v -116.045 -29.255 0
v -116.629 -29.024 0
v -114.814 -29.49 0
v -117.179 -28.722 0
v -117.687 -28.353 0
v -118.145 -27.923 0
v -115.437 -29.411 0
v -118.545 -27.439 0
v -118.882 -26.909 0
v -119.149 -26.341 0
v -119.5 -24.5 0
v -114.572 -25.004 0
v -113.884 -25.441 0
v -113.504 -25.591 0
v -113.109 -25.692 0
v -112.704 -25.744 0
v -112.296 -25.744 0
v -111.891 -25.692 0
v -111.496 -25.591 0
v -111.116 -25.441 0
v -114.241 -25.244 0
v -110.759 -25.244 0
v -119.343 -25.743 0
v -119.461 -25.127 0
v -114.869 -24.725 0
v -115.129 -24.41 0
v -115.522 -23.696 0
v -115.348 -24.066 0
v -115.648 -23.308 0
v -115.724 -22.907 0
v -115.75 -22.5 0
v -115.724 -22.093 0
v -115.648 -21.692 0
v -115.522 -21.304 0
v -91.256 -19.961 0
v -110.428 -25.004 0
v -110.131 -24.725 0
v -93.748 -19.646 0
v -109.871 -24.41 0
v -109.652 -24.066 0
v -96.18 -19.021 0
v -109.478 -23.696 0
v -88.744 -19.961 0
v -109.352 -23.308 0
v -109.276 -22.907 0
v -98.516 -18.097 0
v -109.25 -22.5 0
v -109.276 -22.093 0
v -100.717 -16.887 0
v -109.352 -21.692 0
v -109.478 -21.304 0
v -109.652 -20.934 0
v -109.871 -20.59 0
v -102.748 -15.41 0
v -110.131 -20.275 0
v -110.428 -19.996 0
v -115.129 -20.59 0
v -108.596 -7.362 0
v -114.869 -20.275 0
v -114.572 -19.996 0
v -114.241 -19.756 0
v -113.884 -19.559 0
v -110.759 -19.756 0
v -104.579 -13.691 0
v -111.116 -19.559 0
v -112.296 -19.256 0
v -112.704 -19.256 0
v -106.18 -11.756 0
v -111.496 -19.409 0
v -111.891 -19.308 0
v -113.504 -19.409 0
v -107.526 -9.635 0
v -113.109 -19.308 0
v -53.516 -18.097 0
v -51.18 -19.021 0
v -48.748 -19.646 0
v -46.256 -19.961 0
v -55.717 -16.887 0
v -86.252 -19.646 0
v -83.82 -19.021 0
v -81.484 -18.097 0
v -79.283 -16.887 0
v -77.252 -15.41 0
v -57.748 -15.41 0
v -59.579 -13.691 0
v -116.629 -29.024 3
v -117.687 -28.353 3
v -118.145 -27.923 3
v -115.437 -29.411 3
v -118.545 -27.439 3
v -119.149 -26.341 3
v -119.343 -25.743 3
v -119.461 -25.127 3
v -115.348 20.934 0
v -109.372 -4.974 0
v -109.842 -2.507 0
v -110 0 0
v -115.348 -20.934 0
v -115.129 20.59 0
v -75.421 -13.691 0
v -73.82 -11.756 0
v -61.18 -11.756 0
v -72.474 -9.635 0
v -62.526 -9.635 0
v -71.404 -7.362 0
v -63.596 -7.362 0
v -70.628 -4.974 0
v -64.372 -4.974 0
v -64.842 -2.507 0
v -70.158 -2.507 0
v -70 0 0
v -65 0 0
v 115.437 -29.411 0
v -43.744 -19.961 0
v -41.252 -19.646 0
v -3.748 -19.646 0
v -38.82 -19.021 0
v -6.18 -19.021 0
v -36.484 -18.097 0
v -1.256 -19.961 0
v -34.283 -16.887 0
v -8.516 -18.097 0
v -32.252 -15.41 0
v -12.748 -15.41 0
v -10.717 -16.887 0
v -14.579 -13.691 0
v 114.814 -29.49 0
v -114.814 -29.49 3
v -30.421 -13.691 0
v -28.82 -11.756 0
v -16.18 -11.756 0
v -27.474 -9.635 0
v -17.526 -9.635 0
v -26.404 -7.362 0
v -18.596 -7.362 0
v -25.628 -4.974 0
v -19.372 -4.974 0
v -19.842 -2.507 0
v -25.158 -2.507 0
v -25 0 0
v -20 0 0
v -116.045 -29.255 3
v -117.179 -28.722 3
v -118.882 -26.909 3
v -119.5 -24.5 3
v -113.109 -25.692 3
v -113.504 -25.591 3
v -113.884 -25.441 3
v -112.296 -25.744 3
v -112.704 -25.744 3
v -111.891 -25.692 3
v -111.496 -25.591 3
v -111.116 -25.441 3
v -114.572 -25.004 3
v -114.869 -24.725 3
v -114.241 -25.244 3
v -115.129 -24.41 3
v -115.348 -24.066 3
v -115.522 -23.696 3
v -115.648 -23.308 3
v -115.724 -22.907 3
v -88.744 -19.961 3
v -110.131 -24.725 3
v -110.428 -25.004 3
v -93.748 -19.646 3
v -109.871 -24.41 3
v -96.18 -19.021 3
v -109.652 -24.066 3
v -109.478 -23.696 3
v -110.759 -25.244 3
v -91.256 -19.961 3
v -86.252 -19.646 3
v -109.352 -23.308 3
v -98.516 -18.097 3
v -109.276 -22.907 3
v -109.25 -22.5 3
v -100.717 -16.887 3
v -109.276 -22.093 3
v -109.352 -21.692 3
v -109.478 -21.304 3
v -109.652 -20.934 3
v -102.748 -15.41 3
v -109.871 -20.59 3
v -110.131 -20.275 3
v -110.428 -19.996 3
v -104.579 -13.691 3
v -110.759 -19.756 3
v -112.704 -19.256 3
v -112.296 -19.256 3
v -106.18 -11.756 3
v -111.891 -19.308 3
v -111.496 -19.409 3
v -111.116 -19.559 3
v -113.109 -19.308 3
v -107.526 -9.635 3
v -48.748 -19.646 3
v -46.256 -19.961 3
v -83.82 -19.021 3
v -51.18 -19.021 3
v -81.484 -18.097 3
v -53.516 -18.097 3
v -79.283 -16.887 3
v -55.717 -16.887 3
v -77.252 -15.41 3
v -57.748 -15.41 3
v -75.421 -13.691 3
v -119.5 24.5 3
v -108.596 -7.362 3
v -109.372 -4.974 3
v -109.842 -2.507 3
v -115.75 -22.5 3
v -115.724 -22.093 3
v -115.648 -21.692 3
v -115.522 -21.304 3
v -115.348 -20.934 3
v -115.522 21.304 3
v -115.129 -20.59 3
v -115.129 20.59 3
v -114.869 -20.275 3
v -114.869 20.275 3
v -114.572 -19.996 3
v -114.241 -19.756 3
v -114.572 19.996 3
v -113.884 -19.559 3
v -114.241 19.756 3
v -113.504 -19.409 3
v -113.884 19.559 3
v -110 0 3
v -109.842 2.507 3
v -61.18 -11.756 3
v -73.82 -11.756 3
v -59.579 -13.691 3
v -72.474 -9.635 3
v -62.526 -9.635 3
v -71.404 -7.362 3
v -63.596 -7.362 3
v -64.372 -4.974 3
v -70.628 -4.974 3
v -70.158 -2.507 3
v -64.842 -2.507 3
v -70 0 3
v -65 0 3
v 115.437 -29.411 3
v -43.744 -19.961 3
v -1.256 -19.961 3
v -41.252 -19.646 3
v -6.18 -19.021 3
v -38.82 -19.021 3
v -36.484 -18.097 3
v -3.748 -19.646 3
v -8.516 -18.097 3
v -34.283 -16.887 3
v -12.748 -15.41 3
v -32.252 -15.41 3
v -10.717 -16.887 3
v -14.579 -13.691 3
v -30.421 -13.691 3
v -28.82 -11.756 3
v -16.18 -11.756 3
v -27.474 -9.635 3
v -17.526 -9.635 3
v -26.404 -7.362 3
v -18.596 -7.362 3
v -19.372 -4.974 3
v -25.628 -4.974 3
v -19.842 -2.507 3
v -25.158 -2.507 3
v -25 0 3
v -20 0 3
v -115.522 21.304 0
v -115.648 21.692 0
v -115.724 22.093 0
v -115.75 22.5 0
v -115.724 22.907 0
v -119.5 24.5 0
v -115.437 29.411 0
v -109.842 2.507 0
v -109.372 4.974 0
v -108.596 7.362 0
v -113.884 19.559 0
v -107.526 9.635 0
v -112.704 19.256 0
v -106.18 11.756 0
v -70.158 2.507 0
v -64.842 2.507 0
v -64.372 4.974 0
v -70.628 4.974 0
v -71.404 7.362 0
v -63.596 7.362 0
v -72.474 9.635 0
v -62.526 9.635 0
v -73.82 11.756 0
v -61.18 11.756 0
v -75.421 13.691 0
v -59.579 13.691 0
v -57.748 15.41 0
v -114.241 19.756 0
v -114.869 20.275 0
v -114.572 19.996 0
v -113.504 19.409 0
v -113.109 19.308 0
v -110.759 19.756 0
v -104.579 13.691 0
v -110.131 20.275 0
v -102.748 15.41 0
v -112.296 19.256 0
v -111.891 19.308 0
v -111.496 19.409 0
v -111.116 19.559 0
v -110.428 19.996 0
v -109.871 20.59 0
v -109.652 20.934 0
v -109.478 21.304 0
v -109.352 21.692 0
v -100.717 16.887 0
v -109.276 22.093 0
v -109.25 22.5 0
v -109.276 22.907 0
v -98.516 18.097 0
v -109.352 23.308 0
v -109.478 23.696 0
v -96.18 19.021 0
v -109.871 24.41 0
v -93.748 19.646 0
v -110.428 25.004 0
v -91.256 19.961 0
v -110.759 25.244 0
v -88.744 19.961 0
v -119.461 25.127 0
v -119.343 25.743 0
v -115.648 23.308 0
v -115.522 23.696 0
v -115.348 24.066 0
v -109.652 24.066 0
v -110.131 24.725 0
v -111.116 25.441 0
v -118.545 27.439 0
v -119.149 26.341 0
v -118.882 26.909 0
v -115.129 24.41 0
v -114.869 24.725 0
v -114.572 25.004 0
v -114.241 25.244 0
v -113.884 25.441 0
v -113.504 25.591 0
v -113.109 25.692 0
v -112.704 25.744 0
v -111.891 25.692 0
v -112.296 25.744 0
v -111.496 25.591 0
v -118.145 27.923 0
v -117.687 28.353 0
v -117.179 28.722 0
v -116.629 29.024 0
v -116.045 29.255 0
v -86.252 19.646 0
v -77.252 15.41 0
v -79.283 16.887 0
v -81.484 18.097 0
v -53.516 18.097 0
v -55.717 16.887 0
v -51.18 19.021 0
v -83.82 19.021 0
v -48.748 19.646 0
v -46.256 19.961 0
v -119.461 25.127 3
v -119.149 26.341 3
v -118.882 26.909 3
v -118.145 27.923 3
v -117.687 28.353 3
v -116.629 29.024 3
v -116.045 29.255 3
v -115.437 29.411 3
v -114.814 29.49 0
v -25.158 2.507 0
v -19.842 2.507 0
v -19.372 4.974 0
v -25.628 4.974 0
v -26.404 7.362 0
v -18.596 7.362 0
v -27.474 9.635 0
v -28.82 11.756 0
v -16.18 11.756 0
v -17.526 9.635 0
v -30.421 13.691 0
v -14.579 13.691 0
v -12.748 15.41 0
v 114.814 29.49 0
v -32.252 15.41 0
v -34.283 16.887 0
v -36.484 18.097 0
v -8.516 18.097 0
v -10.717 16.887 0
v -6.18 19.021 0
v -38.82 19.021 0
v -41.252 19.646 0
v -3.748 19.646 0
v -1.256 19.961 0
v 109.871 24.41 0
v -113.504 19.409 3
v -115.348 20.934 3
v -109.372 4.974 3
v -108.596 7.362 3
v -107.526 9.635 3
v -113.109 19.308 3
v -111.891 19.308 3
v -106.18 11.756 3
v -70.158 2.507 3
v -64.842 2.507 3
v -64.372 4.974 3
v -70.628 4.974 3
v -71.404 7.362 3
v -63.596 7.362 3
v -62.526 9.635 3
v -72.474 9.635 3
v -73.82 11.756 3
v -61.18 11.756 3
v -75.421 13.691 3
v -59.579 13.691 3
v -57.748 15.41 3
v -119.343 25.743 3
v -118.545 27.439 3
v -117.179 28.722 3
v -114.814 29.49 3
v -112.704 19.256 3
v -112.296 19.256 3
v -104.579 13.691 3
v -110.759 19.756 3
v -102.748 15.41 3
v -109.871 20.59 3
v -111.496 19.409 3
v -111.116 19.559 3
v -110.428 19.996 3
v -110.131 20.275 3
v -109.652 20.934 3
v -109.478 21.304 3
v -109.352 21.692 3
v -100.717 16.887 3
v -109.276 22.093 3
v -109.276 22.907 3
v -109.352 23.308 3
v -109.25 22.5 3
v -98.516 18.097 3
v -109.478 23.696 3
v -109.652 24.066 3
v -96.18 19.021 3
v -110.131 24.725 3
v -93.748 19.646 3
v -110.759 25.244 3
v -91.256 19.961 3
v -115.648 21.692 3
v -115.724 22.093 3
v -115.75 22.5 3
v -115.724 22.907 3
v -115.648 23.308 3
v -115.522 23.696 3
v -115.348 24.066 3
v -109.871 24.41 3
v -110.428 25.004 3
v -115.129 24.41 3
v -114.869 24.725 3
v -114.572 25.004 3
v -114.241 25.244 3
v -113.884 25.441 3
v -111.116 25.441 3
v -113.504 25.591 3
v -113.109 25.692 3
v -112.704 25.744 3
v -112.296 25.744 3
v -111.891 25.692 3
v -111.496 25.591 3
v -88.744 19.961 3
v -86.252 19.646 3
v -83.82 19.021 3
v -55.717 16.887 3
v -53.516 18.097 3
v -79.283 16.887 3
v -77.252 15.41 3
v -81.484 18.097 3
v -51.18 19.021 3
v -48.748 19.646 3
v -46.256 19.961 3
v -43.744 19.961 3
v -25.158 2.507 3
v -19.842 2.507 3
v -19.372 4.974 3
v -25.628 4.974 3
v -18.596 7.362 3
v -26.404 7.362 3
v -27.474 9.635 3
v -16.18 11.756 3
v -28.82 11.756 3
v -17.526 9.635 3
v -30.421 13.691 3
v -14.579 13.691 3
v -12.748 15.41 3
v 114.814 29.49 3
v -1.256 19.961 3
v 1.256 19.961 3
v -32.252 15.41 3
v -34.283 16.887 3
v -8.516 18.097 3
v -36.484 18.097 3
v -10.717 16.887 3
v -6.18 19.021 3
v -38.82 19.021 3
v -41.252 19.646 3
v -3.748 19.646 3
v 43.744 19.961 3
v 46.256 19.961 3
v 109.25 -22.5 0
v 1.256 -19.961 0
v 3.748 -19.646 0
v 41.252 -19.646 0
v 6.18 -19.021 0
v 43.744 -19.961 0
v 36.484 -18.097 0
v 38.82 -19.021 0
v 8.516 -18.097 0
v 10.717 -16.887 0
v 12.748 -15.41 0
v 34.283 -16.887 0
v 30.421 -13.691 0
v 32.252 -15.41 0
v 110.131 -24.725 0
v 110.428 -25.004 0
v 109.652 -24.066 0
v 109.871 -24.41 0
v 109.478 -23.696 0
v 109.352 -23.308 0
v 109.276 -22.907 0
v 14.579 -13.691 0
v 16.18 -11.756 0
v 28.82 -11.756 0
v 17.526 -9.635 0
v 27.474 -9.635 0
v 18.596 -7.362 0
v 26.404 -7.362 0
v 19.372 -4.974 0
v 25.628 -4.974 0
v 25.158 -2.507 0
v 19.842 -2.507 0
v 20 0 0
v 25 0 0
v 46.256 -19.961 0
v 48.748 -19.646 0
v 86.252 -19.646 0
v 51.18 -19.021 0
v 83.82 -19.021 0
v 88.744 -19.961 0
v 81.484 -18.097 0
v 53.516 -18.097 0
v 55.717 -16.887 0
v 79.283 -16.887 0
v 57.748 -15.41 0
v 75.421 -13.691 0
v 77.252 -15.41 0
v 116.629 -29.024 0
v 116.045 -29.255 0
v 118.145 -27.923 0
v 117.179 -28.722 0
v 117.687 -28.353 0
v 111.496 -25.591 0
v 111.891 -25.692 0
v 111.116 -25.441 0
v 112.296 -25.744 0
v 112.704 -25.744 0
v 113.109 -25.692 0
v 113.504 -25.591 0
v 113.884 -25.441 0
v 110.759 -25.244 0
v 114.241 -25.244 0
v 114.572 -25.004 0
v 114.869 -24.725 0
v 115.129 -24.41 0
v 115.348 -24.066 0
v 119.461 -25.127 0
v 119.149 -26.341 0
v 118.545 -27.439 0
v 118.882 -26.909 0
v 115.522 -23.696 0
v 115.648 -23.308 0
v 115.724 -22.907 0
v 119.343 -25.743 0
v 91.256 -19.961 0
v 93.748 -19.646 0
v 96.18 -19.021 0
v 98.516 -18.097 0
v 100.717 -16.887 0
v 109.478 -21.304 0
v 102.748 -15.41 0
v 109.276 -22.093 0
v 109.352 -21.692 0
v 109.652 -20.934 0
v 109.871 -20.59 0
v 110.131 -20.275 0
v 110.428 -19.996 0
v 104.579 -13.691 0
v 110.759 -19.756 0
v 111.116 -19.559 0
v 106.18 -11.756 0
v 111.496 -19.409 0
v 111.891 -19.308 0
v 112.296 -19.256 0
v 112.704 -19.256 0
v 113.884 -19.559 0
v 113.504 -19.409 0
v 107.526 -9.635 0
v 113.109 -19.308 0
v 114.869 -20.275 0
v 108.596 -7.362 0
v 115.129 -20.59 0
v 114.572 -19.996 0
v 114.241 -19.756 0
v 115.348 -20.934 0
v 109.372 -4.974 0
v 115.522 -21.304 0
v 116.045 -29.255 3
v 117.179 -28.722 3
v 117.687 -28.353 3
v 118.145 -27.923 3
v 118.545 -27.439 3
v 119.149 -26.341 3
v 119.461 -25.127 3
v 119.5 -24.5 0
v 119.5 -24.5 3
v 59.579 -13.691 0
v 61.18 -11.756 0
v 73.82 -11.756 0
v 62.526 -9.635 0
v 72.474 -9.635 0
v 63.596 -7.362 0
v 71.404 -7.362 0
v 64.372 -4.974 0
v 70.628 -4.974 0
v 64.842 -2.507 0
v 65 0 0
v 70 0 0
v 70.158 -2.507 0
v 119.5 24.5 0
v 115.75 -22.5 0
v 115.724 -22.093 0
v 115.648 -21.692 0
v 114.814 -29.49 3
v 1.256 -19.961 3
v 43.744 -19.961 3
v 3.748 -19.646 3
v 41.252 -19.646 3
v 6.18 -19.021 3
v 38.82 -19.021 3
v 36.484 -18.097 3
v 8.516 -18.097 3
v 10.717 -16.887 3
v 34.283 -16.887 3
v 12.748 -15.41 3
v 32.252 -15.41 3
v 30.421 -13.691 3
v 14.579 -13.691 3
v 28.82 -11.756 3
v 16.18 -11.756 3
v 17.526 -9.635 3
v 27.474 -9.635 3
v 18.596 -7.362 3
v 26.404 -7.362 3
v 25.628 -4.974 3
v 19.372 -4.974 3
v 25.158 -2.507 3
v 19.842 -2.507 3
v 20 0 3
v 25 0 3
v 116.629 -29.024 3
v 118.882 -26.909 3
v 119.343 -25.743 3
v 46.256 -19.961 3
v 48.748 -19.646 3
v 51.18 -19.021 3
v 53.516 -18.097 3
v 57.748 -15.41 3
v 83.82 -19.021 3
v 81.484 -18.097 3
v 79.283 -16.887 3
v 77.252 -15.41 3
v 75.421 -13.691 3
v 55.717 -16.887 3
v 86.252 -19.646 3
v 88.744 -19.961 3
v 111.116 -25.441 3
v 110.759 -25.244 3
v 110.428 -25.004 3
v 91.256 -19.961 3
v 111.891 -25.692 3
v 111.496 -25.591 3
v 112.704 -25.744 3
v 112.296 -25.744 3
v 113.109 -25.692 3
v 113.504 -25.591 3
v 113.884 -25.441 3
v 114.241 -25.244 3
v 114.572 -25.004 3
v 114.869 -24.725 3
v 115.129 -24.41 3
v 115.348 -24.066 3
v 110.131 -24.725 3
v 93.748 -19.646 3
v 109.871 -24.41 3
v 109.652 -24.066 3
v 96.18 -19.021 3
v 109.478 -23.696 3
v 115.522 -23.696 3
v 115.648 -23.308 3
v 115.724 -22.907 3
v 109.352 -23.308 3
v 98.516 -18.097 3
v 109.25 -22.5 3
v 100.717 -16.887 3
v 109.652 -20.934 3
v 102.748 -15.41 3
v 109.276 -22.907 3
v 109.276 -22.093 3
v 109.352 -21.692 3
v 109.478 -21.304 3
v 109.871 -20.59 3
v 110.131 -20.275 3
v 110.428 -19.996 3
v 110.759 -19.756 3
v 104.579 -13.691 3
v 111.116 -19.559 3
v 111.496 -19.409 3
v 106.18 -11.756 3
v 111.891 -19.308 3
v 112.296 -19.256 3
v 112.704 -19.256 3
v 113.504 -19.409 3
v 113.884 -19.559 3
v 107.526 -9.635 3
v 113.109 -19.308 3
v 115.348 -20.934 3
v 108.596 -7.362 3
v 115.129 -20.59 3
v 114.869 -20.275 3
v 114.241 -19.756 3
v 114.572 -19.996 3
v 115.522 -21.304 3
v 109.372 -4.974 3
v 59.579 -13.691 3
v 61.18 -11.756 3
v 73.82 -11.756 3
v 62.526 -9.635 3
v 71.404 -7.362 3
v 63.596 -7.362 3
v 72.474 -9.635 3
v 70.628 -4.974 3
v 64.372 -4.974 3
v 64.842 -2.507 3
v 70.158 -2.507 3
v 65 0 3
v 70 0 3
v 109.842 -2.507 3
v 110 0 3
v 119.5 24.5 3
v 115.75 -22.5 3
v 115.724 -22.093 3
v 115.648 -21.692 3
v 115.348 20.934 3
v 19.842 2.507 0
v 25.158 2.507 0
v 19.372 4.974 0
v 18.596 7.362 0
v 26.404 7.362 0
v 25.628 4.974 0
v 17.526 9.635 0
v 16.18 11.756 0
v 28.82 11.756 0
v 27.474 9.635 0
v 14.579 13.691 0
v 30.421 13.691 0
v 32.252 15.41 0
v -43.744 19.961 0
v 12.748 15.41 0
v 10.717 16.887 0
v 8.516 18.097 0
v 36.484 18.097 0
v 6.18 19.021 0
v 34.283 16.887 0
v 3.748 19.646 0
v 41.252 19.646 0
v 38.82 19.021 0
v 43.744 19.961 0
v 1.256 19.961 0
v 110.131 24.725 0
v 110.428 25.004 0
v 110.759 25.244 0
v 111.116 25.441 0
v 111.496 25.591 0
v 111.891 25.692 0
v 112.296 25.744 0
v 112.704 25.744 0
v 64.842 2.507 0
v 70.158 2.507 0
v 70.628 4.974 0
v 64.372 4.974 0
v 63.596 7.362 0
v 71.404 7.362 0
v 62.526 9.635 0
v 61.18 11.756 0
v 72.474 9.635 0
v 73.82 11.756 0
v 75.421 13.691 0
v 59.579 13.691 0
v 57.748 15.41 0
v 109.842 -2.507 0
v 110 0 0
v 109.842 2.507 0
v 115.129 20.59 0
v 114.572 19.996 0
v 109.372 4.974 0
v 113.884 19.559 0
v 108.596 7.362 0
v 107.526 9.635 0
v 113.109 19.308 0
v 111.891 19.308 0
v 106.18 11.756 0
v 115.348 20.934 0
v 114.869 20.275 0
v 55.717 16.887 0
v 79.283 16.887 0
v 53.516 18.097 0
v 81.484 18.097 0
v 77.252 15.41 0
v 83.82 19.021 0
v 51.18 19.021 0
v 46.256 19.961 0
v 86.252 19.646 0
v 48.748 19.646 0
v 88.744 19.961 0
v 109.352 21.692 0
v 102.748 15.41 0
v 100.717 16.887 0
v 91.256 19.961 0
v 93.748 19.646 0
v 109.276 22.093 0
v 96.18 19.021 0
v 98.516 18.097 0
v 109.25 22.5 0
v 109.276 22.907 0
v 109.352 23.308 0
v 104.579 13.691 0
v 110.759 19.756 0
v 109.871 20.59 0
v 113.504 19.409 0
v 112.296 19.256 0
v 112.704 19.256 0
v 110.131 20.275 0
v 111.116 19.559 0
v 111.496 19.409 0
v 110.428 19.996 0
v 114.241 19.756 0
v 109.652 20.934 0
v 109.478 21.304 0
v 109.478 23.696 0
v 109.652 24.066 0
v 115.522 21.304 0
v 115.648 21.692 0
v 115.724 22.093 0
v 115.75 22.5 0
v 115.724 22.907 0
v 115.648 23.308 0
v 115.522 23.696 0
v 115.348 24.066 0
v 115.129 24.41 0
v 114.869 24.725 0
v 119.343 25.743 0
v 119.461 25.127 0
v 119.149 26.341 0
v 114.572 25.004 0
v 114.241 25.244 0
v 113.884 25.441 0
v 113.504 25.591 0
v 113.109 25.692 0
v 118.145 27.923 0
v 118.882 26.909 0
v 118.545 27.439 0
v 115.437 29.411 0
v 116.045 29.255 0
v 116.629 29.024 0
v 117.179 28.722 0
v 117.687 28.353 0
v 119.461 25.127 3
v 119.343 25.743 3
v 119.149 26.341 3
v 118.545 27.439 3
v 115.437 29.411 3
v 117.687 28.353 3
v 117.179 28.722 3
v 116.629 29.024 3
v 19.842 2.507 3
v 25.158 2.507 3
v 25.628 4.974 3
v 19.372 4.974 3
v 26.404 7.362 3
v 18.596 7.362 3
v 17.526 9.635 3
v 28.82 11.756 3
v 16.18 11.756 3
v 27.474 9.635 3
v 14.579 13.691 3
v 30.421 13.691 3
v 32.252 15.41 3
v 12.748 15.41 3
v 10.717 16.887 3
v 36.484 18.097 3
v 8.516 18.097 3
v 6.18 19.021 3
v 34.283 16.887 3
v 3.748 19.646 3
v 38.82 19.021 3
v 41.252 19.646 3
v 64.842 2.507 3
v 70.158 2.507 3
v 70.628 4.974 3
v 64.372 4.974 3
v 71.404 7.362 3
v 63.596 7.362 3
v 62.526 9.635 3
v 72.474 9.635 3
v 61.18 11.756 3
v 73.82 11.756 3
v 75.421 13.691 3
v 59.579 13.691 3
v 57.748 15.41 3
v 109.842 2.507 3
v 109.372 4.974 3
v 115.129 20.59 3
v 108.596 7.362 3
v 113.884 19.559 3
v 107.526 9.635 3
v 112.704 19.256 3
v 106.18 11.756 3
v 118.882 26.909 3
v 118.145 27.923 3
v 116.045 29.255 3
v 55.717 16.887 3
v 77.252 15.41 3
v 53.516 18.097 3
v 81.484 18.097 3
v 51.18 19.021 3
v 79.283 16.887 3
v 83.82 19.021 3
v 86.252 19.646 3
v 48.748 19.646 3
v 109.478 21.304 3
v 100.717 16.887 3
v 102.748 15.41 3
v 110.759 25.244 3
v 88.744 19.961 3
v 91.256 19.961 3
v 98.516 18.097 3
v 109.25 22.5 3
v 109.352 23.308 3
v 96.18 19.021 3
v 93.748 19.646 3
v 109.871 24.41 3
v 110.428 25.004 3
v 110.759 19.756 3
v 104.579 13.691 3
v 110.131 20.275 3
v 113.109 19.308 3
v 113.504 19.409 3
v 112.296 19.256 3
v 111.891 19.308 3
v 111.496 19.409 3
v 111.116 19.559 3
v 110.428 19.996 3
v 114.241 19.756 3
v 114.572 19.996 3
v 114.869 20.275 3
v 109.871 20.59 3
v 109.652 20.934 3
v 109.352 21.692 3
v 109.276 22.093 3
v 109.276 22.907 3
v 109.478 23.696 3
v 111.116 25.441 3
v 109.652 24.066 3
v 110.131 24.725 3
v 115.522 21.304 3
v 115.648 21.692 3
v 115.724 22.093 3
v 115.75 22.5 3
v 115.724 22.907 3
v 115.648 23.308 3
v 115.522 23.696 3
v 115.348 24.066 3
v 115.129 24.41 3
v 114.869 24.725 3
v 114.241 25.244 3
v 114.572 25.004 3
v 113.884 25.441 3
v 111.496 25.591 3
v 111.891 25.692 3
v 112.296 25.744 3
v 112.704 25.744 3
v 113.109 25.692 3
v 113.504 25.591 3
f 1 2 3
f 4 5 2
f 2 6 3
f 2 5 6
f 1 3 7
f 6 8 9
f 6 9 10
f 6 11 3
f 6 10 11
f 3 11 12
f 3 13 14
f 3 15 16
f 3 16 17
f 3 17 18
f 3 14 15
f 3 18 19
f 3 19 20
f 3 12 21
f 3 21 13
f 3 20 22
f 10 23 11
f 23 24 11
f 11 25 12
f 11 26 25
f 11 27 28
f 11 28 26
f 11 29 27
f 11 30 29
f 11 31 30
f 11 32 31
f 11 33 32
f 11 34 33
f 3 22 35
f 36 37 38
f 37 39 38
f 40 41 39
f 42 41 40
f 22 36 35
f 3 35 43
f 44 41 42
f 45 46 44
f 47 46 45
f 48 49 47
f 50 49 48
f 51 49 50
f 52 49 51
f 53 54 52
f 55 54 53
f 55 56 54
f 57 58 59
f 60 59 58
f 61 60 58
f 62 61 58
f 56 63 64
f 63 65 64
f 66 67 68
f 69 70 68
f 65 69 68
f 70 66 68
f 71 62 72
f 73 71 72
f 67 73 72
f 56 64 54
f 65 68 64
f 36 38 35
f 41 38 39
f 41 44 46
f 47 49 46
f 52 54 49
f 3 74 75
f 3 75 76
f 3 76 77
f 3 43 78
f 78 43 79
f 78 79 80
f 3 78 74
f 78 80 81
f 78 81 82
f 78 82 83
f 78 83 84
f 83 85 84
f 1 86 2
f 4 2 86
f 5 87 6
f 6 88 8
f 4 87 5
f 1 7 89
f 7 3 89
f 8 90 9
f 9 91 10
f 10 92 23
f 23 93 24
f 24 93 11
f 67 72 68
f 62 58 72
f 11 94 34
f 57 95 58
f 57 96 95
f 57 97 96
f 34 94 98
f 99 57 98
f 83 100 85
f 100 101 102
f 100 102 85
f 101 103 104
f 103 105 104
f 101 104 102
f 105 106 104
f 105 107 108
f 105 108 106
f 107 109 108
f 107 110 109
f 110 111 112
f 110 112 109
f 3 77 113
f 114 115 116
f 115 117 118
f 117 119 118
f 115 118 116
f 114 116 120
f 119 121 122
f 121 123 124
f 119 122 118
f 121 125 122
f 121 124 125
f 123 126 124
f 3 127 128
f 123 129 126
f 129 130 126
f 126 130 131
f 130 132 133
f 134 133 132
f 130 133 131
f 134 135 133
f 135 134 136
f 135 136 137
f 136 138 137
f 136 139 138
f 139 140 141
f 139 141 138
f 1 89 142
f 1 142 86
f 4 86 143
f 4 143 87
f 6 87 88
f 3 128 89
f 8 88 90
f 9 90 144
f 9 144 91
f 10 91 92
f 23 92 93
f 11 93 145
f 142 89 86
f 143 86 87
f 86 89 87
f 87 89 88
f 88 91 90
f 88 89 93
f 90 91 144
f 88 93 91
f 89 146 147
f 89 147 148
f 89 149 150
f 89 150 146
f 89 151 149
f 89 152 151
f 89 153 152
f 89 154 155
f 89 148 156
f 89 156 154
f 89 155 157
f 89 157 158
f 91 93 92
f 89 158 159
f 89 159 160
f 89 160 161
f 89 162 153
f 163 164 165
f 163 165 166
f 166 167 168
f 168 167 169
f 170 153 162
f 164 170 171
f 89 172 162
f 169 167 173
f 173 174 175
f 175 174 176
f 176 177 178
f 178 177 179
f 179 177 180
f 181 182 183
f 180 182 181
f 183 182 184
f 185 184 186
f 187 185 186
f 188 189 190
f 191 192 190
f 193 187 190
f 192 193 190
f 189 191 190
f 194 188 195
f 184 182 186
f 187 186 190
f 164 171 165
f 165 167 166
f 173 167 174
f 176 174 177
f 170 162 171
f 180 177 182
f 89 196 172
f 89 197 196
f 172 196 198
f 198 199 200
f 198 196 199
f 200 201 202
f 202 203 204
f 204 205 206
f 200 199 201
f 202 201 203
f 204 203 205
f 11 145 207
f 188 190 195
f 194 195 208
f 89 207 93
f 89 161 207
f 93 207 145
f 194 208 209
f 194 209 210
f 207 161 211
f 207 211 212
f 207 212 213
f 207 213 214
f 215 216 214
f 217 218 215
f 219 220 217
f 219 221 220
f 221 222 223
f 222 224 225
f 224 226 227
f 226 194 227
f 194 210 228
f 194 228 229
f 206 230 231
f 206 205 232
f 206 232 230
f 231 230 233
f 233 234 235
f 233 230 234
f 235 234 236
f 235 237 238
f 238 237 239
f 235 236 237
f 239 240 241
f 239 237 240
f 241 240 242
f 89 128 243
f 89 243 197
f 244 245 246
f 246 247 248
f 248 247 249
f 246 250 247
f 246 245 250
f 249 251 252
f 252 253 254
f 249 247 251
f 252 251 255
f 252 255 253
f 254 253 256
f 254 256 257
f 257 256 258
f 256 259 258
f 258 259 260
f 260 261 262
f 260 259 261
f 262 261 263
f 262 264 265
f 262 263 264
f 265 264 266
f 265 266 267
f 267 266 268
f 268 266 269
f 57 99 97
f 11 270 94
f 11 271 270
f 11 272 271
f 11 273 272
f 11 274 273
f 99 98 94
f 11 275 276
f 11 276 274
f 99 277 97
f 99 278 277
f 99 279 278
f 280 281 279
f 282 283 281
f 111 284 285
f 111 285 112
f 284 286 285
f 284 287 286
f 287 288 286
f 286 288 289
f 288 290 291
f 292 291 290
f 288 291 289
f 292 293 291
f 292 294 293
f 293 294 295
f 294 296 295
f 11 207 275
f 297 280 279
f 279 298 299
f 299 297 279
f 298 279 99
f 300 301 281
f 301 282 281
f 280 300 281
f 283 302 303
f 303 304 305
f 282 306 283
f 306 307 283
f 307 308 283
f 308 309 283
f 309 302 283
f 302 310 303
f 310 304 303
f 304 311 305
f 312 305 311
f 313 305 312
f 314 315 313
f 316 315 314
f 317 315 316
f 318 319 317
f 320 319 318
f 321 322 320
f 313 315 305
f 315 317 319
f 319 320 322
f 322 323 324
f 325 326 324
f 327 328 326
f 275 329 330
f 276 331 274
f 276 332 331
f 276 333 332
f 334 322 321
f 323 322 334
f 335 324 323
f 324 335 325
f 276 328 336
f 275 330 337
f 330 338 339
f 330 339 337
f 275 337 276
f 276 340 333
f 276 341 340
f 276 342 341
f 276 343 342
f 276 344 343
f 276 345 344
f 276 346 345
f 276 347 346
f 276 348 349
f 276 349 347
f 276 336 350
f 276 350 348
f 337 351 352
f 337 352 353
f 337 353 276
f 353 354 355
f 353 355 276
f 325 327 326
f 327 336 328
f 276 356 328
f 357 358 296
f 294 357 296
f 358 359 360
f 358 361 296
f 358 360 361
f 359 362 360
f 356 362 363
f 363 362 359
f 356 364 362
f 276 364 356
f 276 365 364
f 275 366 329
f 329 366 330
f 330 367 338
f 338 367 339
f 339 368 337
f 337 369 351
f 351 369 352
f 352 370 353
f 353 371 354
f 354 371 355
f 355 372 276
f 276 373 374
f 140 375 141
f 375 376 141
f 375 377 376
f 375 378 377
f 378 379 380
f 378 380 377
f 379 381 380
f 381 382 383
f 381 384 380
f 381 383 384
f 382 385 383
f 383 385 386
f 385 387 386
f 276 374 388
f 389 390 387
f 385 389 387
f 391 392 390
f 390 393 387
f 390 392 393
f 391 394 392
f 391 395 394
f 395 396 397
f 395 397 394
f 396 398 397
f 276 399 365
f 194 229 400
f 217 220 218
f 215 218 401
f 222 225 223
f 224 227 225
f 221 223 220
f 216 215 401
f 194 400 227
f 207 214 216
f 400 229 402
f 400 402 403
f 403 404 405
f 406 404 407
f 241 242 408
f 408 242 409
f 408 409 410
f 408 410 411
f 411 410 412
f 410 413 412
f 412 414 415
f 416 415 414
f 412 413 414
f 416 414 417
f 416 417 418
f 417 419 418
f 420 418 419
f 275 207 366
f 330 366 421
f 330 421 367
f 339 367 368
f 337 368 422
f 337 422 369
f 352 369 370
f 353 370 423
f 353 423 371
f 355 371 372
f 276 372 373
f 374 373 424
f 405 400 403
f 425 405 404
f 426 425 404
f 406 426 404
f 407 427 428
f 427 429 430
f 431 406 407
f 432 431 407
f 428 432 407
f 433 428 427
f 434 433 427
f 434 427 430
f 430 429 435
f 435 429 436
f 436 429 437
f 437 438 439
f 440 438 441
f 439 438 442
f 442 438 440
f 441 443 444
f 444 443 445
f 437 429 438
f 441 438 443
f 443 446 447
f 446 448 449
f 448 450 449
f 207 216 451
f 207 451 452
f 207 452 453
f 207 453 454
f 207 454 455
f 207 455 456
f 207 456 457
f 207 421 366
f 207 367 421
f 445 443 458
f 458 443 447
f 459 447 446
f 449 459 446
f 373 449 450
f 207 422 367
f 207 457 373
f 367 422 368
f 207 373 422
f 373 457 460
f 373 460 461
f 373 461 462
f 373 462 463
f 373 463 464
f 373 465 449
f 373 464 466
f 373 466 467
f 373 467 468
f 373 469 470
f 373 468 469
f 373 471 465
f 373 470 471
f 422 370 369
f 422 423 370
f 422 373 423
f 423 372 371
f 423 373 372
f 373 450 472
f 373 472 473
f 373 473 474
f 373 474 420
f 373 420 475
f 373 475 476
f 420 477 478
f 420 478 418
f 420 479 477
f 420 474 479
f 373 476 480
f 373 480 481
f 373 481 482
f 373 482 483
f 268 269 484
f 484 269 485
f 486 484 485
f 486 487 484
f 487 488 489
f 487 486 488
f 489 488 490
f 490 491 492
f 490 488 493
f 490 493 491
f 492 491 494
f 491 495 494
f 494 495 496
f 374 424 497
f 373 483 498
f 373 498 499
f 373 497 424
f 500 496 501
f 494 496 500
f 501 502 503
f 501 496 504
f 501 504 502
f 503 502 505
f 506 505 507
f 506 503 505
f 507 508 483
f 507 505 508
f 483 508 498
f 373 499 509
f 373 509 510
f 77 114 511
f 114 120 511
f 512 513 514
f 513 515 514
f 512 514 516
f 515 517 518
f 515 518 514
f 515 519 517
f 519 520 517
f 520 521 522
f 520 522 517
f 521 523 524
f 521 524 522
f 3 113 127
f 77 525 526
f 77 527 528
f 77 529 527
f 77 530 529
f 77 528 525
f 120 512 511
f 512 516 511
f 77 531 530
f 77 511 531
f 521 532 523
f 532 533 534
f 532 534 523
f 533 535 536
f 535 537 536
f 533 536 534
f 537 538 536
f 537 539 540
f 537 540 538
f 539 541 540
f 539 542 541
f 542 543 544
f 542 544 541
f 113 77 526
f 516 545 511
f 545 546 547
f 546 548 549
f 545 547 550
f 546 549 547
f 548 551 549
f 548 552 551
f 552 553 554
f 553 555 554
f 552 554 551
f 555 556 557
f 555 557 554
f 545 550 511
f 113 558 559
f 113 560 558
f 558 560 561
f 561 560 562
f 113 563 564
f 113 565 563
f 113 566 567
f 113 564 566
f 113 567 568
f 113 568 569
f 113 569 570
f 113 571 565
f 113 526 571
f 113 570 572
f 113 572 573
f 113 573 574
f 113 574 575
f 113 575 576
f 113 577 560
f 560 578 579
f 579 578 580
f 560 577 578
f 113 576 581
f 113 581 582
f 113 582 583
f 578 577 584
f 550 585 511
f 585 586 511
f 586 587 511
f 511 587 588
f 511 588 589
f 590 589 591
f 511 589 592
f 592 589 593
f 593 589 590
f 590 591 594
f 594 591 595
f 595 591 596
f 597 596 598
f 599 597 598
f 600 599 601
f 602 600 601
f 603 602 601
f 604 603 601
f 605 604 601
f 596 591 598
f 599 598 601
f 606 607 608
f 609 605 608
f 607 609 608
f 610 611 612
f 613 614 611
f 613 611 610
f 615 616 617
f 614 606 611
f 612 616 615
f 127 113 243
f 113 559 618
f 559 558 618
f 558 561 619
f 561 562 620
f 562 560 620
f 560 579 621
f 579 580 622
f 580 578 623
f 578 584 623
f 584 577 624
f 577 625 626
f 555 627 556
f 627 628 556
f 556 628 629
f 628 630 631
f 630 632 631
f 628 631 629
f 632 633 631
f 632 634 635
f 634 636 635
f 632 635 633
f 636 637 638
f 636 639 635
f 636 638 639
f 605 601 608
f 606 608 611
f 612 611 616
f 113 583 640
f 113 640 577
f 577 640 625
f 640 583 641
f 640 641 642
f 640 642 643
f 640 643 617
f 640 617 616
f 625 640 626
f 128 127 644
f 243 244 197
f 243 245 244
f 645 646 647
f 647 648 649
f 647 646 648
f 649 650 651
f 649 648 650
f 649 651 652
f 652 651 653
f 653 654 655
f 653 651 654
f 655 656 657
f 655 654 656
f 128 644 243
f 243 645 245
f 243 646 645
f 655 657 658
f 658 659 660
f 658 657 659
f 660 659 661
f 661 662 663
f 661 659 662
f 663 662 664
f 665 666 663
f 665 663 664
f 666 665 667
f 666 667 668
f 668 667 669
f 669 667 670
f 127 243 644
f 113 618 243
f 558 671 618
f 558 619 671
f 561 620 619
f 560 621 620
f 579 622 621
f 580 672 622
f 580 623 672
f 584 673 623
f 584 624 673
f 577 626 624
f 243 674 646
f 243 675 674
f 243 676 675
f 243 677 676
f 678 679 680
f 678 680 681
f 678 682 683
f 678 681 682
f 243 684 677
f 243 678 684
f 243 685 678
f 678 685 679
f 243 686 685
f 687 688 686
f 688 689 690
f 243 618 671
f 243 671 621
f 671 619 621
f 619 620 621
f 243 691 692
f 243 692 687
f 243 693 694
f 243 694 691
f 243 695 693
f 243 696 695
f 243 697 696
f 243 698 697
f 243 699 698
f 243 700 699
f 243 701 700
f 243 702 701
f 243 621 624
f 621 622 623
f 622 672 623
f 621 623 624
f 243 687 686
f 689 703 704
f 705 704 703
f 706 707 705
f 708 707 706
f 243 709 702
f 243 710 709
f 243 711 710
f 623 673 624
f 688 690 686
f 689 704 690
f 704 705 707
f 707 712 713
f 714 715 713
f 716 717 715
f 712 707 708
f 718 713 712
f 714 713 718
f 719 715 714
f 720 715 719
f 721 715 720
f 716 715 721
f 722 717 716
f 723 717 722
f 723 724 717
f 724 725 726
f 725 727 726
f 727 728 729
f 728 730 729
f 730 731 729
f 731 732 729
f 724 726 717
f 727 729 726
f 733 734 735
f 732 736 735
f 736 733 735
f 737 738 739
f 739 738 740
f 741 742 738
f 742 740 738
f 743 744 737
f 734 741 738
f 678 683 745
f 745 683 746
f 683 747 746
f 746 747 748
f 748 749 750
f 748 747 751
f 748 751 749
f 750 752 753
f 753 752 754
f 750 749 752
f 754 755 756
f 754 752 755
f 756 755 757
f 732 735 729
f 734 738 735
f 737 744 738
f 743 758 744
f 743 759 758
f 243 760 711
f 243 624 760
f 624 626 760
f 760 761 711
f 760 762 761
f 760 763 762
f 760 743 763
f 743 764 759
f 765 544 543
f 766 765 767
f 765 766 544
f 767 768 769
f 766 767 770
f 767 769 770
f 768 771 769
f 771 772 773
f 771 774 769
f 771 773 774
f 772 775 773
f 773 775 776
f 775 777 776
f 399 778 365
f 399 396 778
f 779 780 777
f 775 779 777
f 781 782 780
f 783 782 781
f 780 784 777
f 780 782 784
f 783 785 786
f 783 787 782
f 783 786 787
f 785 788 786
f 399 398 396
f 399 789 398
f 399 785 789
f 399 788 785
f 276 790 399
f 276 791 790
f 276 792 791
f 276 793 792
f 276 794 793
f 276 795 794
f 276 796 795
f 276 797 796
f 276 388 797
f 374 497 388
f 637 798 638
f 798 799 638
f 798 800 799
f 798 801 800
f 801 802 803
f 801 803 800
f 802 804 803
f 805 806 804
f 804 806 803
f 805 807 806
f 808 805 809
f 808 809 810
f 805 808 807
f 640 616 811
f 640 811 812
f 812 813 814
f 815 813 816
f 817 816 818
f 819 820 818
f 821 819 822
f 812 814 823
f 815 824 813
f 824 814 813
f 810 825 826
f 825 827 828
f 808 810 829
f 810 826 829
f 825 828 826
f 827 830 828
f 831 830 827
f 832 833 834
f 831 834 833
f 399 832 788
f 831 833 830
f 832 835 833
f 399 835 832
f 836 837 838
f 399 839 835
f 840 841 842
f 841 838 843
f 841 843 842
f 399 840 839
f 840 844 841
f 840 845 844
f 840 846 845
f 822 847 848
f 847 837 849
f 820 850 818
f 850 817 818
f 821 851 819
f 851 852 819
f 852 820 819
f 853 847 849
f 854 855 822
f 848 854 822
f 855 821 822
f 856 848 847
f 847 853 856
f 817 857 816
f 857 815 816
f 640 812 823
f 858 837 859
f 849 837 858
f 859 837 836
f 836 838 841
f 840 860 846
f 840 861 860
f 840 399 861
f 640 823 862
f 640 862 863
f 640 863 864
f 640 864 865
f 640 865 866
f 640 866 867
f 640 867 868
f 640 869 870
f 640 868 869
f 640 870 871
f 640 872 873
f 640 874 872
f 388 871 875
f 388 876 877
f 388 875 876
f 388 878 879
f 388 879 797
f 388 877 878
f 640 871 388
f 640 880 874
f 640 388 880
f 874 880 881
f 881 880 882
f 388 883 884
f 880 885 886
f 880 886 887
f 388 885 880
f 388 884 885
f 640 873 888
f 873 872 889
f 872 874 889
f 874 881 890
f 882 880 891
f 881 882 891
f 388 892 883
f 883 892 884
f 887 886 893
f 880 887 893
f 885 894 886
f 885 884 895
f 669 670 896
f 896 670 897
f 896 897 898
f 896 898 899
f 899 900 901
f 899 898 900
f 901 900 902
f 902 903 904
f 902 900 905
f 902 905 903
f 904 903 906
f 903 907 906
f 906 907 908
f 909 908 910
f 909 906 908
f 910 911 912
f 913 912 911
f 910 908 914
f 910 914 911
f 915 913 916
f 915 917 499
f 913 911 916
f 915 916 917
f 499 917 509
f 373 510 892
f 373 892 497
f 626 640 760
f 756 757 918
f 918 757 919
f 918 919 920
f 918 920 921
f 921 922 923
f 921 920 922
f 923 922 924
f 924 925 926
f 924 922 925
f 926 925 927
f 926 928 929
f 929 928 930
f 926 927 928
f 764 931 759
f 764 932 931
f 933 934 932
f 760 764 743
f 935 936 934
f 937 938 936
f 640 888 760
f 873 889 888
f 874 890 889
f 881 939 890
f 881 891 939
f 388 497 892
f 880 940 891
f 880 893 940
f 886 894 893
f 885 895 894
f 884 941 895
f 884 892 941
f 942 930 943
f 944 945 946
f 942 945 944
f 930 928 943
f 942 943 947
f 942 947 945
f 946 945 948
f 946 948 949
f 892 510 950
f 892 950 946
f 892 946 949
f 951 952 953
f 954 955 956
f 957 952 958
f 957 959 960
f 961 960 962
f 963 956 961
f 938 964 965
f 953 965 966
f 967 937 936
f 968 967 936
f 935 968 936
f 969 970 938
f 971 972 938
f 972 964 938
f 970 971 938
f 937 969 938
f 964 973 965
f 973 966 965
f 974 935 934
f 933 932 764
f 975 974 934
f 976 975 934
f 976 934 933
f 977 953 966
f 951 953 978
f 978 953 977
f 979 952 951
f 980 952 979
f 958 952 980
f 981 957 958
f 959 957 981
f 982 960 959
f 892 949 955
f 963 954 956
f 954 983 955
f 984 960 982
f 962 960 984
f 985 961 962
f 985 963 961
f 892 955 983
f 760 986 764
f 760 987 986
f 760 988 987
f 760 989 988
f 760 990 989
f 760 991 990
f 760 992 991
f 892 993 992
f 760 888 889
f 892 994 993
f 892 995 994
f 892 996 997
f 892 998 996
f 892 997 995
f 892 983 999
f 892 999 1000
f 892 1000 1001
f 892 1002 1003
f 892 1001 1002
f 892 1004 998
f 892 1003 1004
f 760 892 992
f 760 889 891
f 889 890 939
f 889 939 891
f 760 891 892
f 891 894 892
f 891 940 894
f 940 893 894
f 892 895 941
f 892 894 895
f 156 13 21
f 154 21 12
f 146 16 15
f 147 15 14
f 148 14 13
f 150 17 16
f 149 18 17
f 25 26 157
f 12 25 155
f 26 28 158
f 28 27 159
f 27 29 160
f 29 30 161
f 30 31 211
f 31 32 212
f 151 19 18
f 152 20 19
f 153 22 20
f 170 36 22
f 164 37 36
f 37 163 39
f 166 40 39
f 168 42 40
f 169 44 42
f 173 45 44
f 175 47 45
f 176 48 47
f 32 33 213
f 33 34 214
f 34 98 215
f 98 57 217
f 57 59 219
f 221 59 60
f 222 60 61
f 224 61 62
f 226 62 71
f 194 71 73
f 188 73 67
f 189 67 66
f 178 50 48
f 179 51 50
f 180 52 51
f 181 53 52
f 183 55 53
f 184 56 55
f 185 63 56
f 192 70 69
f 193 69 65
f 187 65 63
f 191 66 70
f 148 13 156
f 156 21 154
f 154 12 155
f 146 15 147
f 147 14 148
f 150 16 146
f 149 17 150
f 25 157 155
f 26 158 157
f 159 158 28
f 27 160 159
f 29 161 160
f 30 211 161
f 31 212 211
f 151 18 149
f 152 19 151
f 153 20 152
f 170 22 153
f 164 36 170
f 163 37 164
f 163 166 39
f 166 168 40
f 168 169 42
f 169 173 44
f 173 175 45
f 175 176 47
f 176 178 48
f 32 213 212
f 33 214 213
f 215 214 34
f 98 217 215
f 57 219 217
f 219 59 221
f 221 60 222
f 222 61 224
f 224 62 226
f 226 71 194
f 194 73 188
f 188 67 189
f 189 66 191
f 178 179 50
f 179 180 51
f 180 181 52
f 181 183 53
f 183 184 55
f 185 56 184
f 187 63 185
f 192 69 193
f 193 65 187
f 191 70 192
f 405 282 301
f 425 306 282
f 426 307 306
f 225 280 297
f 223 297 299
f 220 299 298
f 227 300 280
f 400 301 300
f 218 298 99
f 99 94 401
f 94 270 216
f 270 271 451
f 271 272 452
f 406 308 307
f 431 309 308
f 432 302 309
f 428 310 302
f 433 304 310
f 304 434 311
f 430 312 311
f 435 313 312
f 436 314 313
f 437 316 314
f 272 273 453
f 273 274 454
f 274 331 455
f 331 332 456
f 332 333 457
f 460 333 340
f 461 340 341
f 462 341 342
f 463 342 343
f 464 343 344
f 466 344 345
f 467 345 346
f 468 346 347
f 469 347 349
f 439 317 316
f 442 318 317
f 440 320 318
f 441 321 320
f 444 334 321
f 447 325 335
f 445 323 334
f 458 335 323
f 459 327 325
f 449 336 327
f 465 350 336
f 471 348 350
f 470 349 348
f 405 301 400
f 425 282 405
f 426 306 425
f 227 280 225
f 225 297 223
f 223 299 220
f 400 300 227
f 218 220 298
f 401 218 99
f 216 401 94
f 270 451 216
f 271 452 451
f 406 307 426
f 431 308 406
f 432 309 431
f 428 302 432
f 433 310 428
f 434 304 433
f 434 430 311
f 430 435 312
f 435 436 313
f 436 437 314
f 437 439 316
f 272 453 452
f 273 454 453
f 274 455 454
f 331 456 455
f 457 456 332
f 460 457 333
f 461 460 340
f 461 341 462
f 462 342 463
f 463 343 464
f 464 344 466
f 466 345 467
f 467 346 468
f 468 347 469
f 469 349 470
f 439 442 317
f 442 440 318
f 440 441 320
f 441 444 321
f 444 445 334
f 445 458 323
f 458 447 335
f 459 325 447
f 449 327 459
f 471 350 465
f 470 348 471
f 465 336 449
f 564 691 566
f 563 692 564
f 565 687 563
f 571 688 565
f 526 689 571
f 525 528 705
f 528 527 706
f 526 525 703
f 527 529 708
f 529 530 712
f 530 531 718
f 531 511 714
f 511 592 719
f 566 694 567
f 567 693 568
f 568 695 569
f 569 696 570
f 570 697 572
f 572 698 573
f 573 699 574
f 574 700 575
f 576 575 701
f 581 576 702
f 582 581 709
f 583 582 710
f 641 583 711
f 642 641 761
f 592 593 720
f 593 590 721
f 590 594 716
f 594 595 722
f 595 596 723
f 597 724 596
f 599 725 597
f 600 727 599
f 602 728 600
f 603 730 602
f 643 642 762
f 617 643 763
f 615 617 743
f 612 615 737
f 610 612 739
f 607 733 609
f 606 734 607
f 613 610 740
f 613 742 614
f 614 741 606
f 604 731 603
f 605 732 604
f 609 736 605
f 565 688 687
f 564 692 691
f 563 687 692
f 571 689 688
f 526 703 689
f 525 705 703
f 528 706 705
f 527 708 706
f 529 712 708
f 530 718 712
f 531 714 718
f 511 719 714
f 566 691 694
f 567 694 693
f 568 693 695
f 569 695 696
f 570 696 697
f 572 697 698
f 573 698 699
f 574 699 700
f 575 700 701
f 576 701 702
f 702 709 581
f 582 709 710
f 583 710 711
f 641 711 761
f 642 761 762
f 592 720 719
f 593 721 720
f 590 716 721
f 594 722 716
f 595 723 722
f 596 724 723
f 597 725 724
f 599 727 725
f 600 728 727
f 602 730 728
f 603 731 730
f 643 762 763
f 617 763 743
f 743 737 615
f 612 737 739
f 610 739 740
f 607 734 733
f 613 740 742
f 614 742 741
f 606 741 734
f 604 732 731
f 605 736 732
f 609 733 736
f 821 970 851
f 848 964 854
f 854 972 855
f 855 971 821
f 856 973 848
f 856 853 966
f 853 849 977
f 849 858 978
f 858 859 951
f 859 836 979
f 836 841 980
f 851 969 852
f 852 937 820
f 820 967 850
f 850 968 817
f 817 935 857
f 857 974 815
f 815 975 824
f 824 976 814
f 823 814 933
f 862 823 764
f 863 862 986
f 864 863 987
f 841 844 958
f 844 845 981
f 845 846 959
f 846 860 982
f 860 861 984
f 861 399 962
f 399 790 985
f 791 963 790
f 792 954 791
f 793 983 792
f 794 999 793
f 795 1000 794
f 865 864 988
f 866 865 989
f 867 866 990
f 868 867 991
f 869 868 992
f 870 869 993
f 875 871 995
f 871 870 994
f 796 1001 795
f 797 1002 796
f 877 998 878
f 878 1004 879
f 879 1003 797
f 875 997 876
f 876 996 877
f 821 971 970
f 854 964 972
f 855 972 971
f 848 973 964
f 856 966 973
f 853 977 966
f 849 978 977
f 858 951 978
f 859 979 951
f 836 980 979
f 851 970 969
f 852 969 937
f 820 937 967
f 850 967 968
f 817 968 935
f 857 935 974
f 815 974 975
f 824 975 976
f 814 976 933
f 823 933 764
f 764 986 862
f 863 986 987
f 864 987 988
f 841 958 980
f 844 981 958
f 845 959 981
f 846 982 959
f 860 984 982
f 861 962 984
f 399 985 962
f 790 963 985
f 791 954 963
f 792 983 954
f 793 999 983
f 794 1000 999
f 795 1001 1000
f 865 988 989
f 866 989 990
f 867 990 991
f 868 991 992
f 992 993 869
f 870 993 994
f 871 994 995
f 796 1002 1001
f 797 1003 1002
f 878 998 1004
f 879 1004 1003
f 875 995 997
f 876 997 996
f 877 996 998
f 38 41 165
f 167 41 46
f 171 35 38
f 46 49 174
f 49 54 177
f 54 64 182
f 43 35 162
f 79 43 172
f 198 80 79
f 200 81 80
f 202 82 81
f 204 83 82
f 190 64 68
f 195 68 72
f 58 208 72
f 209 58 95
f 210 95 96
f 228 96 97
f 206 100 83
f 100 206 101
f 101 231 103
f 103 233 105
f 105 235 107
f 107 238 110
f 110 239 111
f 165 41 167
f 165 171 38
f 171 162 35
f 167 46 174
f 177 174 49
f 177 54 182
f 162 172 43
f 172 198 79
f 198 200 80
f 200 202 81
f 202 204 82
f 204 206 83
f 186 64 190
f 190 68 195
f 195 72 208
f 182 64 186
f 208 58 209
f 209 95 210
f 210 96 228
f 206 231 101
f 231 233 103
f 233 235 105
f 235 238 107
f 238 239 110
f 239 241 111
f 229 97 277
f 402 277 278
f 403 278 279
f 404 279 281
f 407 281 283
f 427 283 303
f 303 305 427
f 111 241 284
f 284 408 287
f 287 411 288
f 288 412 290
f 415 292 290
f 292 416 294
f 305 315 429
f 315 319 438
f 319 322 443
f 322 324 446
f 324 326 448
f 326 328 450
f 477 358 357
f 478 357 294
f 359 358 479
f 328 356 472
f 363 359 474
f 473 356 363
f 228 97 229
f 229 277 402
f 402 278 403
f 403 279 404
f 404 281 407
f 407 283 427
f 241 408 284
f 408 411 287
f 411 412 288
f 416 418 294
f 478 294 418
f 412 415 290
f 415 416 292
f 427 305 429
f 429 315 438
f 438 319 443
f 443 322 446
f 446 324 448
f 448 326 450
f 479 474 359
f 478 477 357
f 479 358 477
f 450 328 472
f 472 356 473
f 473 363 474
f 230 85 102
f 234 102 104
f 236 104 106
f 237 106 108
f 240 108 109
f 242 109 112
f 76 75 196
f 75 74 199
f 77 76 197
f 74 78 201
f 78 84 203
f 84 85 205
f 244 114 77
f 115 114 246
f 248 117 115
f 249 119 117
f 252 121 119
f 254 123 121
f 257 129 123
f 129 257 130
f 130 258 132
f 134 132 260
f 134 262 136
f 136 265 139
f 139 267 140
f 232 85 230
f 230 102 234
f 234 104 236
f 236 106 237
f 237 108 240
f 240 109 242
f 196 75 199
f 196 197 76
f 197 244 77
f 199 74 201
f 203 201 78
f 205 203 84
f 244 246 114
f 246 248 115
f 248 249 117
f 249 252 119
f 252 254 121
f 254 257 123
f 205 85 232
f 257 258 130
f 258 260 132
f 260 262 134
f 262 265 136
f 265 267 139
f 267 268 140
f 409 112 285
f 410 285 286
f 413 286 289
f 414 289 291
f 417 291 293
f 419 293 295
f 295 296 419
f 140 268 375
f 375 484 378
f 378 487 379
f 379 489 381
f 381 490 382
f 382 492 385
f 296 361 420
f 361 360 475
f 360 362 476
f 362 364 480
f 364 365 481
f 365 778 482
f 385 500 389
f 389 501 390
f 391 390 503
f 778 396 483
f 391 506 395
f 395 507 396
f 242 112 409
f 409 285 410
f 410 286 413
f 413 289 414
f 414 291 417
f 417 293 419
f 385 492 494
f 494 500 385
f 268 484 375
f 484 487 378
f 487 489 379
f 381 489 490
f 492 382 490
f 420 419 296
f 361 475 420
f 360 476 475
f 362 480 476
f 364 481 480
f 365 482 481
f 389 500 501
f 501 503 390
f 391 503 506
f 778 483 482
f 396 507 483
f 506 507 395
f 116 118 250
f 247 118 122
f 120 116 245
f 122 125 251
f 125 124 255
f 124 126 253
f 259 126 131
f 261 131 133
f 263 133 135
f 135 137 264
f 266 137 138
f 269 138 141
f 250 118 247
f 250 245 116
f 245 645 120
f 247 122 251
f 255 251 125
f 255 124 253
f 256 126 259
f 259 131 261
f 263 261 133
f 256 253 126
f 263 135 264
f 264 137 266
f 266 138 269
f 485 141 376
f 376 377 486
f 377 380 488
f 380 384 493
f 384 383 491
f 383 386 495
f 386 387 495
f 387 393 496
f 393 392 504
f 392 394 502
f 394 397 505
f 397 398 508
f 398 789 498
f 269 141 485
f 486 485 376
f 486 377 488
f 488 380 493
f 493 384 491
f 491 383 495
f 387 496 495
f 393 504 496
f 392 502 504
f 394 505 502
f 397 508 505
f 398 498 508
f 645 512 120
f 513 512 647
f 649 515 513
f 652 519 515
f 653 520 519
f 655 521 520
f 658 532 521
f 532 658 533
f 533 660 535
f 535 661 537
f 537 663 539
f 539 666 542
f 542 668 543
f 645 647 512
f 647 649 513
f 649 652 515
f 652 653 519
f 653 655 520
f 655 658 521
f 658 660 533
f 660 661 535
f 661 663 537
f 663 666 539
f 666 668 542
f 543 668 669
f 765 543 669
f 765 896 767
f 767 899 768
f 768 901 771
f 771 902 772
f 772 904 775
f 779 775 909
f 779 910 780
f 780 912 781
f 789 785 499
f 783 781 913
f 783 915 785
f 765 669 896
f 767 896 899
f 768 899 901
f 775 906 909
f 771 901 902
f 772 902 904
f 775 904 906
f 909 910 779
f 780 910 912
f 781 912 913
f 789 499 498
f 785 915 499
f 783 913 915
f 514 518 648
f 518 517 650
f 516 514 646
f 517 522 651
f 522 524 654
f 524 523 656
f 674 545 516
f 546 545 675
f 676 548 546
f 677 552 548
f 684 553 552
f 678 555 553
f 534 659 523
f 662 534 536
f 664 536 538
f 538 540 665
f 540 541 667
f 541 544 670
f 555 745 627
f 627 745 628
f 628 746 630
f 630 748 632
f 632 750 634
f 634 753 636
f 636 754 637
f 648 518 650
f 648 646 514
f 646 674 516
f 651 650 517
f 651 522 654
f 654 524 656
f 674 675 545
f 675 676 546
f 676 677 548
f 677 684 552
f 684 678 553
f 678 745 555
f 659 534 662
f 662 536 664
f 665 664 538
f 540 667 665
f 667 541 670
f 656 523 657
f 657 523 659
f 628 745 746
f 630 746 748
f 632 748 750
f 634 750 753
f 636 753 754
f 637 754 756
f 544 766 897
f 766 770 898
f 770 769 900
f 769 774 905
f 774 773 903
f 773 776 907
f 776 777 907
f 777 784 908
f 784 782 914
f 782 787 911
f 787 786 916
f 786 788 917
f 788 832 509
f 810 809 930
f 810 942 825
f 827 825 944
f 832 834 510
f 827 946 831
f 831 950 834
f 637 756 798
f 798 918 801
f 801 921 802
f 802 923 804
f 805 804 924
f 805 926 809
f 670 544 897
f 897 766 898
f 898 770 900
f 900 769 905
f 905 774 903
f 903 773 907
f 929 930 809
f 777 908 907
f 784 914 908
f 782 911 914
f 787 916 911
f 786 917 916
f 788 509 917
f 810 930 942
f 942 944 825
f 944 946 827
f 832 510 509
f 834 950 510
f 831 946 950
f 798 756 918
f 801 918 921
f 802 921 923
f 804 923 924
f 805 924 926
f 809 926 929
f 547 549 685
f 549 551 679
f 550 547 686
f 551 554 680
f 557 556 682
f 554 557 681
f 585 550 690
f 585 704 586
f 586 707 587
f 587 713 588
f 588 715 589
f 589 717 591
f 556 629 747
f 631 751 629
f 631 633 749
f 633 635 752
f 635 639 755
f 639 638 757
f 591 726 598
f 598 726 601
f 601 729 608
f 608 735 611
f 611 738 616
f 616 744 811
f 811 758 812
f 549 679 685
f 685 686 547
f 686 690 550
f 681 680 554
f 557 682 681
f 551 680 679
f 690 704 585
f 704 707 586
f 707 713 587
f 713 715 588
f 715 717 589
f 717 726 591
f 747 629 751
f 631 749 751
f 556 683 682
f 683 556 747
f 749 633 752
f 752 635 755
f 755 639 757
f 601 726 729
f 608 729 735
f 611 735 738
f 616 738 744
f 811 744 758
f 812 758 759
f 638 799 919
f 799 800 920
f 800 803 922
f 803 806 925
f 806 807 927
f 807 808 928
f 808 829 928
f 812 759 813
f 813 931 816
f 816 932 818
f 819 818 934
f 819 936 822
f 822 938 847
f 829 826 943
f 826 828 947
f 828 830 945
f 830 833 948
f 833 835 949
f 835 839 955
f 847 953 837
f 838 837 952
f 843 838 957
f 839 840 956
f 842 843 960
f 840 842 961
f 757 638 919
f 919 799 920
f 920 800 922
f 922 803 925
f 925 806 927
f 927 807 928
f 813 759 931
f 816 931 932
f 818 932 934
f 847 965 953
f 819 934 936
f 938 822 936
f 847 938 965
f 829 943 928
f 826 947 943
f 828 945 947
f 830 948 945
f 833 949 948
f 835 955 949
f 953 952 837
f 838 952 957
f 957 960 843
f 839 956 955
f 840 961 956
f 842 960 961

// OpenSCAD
$fn = 50;

difference() {
	union() {
		hull() {
			translate(v = [-114.5, 24.5, 0]) {
				cylinder(h = 3, r = 5);
			}
			translate(v = [114.5, 24.5, 0]) {
				cylinder(h = 3, r = 5);
			}
			translate(v = [-114.5, -24.5, 0]) {
				cylinder(h = 3, r = 5);
			}
			translate(v = [114.5, -24.5, 0]) {
				cylinder(h = 3, r = 5);
			}
		}
	}
	union() {
		translate(v = [-112.5, -22.5, -100.0]) {
			cylinder(h = 200, r = 3.25);
		}
		translate(v = [-112.5, 22.5, -100.0]) {
			cylinder(h = 200, r = 3.25);
		}
		translate(v = [112.5, -22.5, -100.0]) {
			cylinder(h = 200, r = 3.25);
		}
		translate(v = [112.5, 22.5, -100.0]) {
			cylinder(h = 200, r = 3.25);
		}
		translate(v = [-112.5, -22.5, -100.0]) {
			cylinder(h = 200, r = 1.8);
		}
		translate(v = [-112.5, 22.5, -100.0]) {
			cylinder(h = 200, r = 1.8);
		}
		translate(v = [112.5, -22.5, -100.0]) {
			cylinder(h = 200, r = 1.8);
		}
		translate(v = [112.5, 22.5, -100.0]) {
			cylinder(h = 200, r = 1.8);
		}
		translate(v = [-90.0, 0, 0.0]) {
			cylinder(h = 3, r = 20.0);
		}
		translate(v = [-45.0, 0, 0.0]) {
			cylinder(h = 3, r = 20.0);
		}
		cylinder(h = 3, r = 20.0);
		translate(v = [45.0, 0, 0.0]) {
			cylinder(h = 3, r = 20.0);
		}
		translate(v = [90.0, 0, 0.0]) {
			cylinder(h = 3, r = 20.0);
		}
	}
}
